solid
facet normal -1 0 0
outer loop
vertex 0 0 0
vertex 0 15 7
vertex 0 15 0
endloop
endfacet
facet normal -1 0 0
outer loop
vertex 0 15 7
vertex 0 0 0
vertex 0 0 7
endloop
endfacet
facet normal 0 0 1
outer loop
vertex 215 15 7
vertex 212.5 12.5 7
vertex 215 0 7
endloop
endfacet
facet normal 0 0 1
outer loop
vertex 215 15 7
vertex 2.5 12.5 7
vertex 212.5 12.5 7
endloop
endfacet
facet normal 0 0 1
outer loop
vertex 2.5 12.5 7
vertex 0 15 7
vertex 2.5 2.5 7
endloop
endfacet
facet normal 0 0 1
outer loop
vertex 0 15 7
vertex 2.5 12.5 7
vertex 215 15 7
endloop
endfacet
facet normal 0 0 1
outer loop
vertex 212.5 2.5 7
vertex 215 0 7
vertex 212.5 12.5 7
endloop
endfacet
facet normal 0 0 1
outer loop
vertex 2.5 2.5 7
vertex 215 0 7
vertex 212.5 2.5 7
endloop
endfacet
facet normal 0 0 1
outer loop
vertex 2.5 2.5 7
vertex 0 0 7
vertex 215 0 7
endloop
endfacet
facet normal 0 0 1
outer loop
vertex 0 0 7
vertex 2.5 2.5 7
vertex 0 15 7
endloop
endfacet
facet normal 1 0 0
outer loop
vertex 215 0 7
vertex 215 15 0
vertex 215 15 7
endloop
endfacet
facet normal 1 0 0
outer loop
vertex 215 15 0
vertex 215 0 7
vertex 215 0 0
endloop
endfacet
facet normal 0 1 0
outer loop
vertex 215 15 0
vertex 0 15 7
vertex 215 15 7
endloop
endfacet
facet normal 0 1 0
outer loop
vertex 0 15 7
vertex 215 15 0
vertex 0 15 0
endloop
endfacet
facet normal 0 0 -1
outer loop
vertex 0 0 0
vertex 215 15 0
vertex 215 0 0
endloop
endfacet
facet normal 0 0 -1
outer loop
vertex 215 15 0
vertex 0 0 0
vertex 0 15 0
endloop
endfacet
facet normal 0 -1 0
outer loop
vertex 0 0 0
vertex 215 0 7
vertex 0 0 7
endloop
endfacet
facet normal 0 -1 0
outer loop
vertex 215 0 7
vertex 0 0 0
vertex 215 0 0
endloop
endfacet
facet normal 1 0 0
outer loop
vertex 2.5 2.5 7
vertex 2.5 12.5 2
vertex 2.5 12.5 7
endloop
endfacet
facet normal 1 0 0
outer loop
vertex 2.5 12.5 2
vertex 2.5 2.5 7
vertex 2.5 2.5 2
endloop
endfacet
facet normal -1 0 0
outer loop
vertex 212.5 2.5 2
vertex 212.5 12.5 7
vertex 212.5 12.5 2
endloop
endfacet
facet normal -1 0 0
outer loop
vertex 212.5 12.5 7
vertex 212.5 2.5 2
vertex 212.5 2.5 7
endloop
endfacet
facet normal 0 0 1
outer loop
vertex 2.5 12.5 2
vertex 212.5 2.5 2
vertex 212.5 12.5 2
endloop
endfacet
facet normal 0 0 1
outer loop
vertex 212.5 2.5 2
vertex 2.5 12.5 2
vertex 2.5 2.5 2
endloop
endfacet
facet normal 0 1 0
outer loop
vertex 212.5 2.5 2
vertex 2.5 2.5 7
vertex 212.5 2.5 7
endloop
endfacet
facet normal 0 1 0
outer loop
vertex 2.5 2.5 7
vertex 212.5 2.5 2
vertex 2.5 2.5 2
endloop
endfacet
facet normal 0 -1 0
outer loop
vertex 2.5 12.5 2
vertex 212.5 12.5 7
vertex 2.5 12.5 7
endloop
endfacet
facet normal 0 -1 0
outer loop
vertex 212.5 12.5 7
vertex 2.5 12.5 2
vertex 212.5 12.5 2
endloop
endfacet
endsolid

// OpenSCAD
$fa=0.1;$fs=0.1;

$columns=7;
$rows=6;

$pawnHeight=5;
$pawnWidth=25;

$floorHeight=7.5;
$wallWidth=2.5;
$wallOuter=10;
$wallPartition=2.5;
$wallMargin=0.75;

$windowMargin=4;

$standMargin=7.5;
$standHeight=2.5;

$roofHeight=5;

module lid() {
width=$pawnWidth*$columns+$wallPartition*($columns-1)+$wallOuter*2;
depth = $wallWidth*2+$pawnHeight;
height=$floorHeight+$pawnWidth*$rows+$roofHeight;

difference() {

cube([width+5, depth+5, 2+$roofHeight]);
translate([2.5, 2.5, 2])
cube([width, depth, $roofHeight]);

}
}

lid();
